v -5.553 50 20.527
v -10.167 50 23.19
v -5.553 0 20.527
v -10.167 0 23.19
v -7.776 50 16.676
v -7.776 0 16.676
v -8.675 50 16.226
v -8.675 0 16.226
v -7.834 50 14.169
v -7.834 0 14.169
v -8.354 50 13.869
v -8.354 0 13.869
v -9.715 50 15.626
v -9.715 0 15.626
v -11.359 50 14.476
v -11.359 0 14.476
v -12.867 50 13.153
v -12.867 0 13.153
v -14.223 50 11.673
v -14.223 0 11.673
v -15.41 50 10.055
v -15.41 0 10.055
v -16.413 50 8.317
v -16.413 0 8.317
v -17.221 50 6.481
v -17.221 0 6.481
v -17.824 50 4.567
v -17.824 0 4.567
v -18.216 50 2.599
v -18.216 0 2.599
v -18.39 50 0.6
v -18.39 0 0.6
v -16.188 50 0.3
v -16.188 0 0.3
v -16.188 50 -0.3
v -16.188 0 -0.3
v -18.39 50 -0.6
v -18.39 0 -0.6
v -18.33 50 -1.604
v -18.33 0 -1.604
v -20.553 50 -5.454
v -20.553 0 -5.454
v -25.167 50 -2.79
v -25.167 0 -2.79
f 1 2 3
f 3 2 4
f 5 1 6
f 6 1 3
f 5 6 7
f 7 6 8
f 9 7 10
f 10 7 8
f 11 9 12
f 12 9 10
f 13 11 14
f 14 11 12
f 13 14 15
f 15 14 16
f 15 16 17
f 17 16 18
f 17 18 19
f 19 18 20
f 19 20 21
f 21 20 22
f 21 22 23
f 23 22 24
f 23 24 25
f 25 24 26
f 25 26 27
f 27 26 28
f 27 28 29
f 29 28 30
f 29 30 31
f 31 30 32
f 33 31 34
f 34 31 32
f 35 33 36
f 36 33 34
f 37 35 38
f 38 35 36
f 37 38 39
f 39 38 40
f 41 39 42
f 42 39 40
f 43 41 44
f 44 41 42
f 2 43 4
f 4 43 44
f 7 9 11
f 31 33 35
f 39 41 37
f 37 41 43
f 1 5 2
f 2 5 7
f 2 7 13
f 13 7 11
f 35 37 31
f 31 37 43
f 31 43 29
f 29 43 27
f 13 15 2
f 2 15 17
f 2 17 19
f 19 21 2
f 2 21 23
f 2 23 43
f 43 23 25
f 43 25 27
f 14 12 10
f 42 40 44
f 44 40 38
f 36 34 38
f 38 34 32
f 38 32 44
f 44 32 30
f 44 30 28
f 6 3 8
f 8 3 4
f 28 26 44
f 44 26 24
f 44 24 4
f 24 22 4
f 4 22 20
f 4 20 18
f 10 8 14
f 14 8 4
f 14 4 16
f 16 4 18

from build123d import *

# Parameters (mm, degrees)
BOSS_EXTRUDE1_DEPTH = 50


with BuildPart() as part:
    # Sketch1 → Boss-Extrude1 (new body)
    with BuildSketch(Plane(origin=(0, 0, 0), x_dir=(1, 0, 0), z_dir=(0, 1, 0))):
        with BuildLine():
            Line((-16.188252967, -0.3), (-16.188252967, 0.3))
            Line((-16.188252967, 0.3), (-18.390214789, 0.6))
            ThreePointArc((-18.390214789, 0.6), (-18.366950287, 1.102332591), (-18.329967032, 1.603841822))
            Line((-18.329967032, 1.603841822), (-20.552991394, 5.454232962))
            Line((-20.552991394, 5.454232962), (-25.166918237, 2.790381057))
            Line((-25.166918237, 2.790381057), (-10.166918237, -23.190381057))
            Line((-10.166918237, -23.190381057), (-5.552991394, -20.526529152))
            Line((-5.552991394, -20.526529152), (-7.776015755, -16.676138011))
            ThreePointArc((-7.776015755, -16.676138011), (-8.228827116, -16.457411834), (-8.675492152, -16.226393189))
            Line((-8.675492152, -16.226393189), (-7.834318863, -14.169438313))
            Line((-7.834318863, -14.169438313), (-8.353934105, -13.869438313))
            Line((-8.353934105, -13.869438313), (-9.714722637, -15.626393189))
            ThreePointArc((-9.714722637, -15.626393189), (-15.93486743, -9.2), (-18.390214789, -0.6))
            Line((-18.390214789, -0.6), (-16.188252967, -0.3))
        make_face()
    extrude(amount=BOSS_EXTRUDE1_DEPTH)


solid = part.part
